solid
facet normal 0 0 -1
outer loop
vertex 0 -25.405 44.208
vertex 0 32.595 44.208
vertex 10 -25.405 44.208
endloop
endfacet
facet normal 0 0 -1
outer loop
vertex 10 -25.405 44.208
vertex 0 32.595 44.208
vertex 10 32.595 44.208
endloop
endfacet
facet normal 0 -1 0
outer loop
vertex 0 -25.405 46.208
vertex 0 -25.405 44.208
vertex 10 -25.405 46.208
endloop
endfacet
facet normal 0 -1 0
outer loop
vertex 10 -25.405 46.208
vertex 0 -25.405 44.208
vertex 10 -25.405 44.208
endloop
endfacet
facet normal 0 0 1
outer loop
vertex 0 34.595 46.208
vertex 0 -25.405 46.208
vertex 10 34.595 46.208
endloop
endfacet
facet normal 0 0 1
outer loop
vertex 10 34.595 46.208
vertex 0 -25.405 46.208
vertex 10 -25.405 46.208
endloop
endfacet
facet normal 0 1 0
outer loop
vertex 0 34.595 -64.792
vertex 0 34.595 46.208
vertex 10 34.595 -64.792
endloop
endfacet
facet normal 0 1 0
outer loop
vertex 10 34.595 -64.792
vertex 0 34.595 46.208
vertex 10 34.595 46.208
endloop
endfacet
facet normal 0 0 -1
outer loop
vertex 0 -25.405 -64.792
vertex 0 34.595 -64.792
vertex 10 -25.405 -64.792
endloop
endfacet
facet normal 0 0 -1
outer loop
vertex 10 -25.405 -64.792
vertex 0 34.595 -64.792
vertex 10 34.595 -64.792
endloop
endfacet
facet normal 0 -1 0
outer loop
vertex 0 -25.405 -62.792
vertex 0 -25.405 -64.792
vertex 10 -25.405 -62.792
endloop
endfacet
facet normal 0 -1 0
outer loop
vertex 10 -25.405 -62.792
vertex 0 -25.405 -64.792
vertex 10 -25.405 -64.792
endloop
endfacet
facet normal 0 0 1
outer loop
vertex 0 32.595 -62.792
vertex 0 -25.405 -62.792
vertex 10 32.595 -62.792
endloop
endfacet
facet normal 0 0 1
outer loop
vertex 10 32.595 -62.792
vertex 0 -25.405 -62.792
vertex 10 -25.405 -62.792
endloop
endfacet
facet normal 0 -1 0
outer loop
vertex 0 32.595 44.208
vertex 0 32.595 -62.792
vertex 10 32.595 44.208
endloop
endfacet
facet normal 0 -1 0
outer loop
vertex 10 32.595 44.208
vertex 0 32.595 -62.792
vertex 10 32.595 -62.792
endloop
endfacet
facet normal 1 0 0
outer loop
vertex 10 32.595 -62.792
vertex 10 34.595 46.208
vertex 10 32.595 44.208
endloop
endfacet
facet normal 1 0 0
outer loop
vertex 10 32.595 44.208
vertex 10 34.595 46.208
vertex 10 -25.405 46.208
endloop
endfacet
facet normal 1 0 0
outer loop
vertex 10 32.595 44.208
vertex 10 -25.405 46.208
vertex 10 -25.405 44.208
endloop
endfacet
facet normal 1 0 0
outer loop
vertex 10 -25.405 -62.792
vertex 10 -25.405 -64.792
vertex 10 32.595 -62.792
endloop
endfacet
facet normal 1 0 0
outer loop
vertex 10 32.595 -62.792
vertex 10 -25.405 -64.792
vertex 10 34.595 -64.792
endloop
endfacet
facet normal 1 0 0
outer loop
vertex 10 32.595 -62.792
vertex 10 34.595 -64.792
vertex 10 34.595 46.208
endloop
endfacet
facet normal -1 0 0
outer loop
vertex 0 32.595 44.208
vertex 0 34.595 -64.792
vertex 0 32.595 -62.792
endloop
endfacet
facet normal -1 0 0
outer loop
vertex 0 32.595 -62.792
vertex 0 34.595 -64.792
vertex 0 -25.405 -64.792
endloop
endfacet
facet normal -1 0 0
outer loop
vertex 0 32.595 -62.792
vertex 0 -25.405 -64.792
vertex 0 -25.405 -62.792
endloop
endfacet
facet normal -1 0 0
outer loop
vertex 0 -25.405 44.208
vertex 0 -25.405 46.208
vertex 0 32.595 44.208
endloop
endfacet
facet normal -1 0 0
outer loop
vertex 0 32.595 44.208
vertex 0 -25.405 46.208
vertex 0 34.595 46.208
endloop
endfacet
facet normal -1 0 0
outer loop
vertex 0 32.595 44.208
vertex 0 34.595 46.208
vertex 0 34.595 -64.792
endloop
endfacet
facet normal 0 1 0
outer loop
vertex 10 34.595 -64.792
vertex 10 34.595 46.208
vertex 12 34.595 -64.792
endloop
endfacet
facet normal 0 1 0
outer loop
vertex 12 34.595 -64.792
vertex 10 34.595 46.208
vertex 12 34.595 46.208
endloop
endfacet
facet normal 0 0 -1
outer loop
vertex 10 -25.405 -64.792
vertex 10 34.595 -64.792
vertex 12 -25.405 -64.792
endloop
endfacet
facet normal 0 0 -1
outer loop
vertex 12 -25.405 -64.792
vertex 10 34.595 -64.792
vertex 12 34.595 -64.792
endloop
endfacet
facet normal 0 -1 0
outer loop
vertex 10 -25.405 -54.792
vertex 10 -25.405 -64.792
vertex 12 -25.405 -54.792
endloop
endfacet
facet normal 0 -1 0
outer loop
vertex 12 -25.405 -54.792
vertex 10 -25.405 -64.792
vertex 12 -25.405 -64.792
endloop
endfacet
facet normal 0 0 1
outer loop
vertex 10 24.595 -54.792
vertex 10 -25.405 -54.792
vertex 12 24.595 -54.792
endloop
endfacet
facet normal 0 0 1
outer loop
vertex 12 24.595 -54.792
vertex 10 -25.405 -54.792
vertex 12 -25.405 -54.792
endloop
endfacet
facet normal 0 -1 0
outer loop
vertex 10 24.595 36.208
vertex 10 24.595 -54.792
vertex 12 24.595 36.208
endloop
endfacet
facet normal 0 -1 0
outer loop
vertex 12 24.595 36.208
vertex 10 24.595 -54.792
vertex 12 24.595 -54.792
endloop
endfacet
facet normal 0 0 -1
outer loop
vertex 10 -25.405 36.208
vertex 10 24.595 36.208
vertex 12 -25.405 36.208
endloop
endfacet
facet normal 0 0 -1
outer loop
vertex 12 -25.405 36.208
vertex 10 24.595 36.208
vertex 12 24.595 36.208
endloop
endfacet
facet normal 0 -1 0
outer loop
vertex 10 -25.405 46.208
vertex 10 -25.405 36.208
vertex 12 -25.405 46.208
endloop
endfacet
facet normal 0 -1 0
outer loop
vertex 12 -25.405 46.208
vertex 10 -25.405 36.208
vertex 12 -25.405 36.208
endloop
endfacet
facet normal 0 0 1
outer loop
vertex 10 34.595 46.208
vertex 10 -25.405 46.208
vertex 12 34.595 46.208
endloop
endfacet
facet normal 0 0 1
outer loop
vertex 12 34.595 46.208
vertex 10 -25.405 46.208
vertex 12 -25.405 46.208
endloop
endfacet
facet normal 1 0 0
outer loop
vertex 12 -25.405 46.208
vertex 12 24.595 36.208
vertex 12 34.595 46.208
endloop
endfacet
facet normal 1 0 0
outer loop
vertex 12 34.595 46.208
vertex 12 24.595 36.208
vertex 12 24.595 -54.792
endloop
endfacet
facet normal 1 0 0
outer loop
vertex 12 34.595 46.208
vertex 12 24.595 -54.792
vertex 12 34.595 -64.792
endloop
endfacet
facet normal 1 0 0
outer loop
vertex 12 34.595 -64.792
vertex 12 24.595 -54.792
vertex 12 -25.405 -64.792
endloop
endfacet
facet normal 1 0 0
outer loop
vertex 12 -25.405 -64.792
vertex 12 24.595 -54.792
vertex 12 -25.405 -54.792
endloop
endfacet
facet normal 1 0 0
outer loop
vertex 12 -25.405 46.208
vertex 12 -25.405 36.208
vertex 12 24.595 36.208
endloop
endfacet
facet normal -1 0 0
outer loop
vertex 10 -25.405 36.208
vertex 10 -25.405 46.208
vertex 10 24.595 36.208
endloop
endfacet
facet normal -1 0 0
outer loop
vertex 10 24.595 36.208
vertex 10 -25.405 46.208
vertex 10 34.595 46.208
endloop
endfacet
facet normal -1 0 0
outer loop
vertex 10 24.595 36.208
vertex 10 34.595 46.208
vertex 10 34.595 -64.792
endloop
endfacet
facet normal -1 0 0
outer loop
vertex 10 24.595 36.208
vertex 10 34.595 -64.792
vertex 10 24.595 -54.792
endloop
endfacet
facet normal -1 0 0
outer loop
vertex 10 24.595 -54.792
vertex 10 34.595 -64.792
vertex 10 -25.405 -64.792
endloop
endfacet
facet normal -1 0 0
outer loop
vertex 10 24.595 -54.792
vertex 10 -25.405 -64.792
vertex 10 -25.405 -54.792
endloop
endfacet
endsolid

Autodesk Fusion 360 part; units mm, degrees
sketch "Skizze1" plane through (0, 0, 0) normal (1, 0, 0) x (0, 0, -1)
  line L0 (-44.2076, 32.5954) -> (62.7924, 32.5954)
  line L1 (-44.2076, 32.5954) -> (-44.2076, -25.4046)
  line L2 (62.7924, 32.5954) -> (62.7924, -25.4046)
  line L3 (-44.2076, -25.4046) -> (-46.2076, -25.4046)
  line L4 (-46.2076, -25.4046) -> (-46.2076, 34.5954)
  line L5 (-46.2076, 34.5954) -> (64.7924, 34.5954)
  line L6 (64.7924, 34.5954) -> (64.7924, -25.4046)
  line L7 (62.7924, -25.4046) -> (64.7924, -25.4046)
  dimension "d1" = 107
  dimension "d2" = 58
  dimension "d3" = 58
  dimension "d4" = 2
  dimension "d5" = 60
  dimension "d6" = 111
  dimension "d7" = 60
extrude "Extrusion1" add sketch "Skizze1" along normal blind 10 makes body 1
sketch "Skizze2" plane through (10, 0, 0) normal (1, 0, 0) x (0, 0, -1)
  line L0 (-44.2076, 32.5954) -> (62.7924, 32.5954)
  line L1 (62.7924, 32.5954) -> (62.7924, -25.4046)
  line L2 (62.7924, -25.4046) -> (64.7924, -25.4046)
  line L3 (64.7924, -25.4046) -> (64.7924, 34.5954)
  line L4 (64.7924, 34.5954) -> (-46.2076, 34.5954)
  line L5 (-46.2076, 34.5954) -> (-46.2076, -25.4046)
  line L6 (-46.2076, -25.4046) -> (-44.2076, -25.4046)
  line L7 (-44.2076, -25.4046) -> (-44.2076, 32.5954)
  line L8 (-46.2076, 34.5954) -> (64.7924, 34.5954)
  line L9 (64.7924, 34.5954) -> (64.7924, 24.5954)
  line L10 (64.7924, 24.5954) -> (-46.2076, 24.5954)
  line L11 (-46.2076, 24.5954) -> (-46.2076, 34.5954)
  line L12 (-46.2076, -25.4046) -> (-36.2076, -25.4046)
  line L13 (-36.2076, -25.4046) -> (-36.2076, 24.5954)
  line L14 (-36.2076, 24.5954) -> (-46.2076, 24.5954)
  line L15 (-46.2076, 24.5954) -> (-46.2076, -25.4046)
  line L16 (64.7924, -25.4046) -> (54.7924, -25.4046)
  line L17 (54.7924, -25.4046) -> (54.7924, 24.5954)
  line L18 (54.7924, 24.5954) -> (64.7924, 24.5954)
  line L19 (64.7924, 24.5954) -> (64.7924, -25.4046)
  dimension "d10" = 10
  dimension "d11" = 10
  dimension "d12" = 10
extrude "Extrusion2" add sketch "Skizze2" along normal blind 2 separate body makes body 2
ref_plane "Arbeitsebene2" through (5, -25.4046, 45.2076) normal (0, -1, 0) x (0, 0, -1)
sketch "Skizze4" plane through (5, -25.4046, 45.2076) normal (0, -1, 0) x (1, 0, 0)
  line L0 (-5, 1) -> (8.0711, 14.0711)
  line L1 (-5, 1) -> (17.1415, 1) construction
  line L2 (7, -9) -> (19.0711, 3.0711)
  line L3 (7, -9) -> (28.7493, -9) construction
  line L4 (19.0711, 10.1421) -> (15.1421, 14.0711)
  circle A0 centre (13.1976, 8.9445) radius 2.5
  line L5 (7, -100) -> (19.0711, -112.0711)
  line L6 (19.0711, -119.1421) -> (15.1421, -123.0711)
  line L7 (8.0711, -123.0711) -> (-5, -110)
  line L8 (-5, -110) -> (5, -110)
  circle A1 centre (13.591, -117.5511) radius 2.5
  line L9 (-5, -110) -> (7, -110)
  line L10 (7, -110) -> (7, -100)
  line L11 (-5, 1) -> (7, 1)
  line L12 (7, 1) -> (7, -9)
  arc A2 (19.0711, 3.0711) -> (19.0711, 10.1421) centre (15.5355, 6.6066) ccw
  arc A3 (15.1421, 14.0711) -> (8.0711, 14.0711) centre (11.6066, 10.5355) ccw
  arc A4 (19.0711, -119.1421) -> (19.0711, -112.0711) centre (15.5355, -115.6066) ccw
  arc A5 (8.0711, -123.0711) -> (15.1421, -123.0711) centre (11.6066, -119.5355) ccw
  point P0 (11.6066, 17.6066)
  point P1 (22.6066, 6.6066)
  point P2 (7, 1)
  point P3 (-5, 1)
  point P4 (7, -9)
  point P5 (-5, -110)
  point P6 (7, -100)
  point P7 (7, -110)
  dimension "d18" = 45
  dimension "d19" = 45
  dimension "d20" = 15
  dimension "d21" = 5
  dimension "d23" = 15.5563
  dimension "d24" = 7.25
  dimension "d25" = 5
  dimension "d26" = 45
  dimension "d27" = 15
  dimension "d28" = 5
  dimension "d29" = 7.75
  dimension "d30" = 5
  dimension "d33" = 5
extrude "Extrusion3" [suppressed]
fillet "Abrundung1" [suppressed]
fillet "Abrundung2" [suppressed]
